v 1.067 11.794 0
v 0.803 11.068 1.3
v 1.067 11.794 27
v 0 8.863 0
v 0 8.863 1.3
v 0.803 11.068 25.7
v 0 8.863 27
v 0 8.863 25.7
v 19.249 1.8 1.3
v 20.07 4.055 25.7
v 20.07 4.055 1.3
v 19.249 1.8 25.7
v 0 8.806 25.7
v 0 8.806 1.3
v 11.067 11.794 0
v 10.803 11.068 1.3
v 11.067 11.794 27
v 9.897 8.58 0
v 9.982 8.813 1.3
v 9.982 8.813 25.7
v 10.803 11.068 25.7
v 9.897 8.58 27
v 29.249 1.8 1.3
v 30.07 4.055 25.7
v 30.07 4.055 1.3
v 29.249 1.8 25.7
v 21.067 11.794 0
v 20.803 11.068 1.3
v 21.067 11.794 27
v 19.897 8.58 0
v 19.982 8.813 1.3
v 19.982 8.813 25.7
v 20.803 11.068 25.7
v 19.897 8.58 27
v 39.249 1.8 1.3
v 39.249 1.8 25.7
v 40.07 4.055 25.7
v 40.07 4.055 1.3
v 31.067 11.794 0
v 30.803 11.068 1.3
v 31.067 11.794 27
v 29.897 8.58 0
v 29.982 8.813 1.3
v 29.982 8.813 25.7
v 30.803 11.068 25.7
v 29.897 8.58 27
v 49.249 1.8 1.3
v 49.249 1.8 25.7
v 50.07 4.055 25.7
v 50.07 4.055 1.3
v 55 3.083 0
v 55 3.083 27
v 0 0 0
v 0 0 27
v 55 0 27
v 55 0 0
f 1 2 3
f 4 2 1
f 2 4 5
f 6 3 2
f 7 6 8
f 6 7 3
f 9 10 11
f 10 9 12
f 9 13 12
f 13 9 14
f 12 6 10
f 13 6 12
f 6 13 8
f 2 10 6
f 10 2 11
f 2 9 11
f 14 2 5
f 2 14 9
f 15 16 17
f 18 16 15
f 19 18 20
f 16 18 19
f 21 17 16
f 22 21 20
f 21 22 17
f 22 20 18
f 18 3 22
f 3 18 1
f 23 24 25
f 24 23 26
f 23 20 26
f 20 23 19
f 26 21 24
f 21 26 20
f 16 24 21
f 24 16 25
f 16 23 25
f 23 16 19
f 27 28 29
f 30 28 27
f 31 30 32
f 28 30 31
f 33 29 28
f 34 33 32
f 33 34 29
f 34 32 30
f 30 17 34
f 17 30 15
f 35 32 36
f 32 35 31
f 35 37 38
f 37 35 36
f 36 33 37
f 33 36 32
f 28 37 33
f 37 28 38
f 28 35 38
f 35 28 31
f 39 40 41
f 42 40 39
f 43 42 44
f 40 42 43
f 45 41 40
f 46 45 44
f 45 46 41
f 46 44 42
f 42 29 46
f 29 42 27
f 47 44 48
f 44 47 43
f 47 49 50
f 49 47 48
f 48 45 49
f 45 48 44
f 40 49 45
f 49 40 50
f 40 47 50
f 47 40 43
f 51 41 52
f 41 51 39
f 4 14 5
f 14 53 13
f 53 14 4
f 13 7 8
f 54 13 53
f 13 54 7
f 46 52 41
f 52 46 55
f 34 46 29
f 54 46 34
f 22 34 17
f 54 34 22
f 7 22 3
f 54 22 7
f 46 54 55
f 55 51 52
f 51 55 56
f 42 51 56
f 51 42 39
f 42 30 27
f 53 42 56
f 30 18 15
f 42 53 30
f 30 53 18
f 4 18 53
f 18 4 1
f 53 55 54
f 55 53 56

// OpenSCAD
// Number of card slots
cardCount = 4;

// Adding 0 to not show up in thingiverse customizer
y = 15 + 0;
z = 27 + 0;

xSlot = 10 + 0;
ySlot = 3 + 0;

sdCardX = 32 + 0;
sdCardY = 24 + 0;
sdCardZ = 2 + 0;
tol = 0.2 + 0;
angle = -20 + 0;

verticalHolder();

module verticalHolder() {
  difference() {
    cube([(cardCount + 1) * 11, y, z]);
    for (slot = [0 : cardCount ]) {
      translate([xSlot * (slot - 1) + 0.5, y-3, -0.5]) {
        rotate([0, 0, angle]) {
          if (slot == cardCount) {
            cube([50, 20, z + 1]);
          } else {
            cube([xSlot, 20, z + 1]);
          }
        }
      }
      if(slot < cardCount) {
        translate([xSlot * (slot - 1), y, (z - sdCardY)/2 -tol]) {
          rotate([0, 0, angle]) {
            sdCard(tol);
          }
        }
      }
    }
  }
}

module sdCard(tol) {
  rotate([90, 0, 0]) {
    cube([sdCardX, sdCardY + 2 * tol, sdCardZ + 2 * tol]);
  }
}
